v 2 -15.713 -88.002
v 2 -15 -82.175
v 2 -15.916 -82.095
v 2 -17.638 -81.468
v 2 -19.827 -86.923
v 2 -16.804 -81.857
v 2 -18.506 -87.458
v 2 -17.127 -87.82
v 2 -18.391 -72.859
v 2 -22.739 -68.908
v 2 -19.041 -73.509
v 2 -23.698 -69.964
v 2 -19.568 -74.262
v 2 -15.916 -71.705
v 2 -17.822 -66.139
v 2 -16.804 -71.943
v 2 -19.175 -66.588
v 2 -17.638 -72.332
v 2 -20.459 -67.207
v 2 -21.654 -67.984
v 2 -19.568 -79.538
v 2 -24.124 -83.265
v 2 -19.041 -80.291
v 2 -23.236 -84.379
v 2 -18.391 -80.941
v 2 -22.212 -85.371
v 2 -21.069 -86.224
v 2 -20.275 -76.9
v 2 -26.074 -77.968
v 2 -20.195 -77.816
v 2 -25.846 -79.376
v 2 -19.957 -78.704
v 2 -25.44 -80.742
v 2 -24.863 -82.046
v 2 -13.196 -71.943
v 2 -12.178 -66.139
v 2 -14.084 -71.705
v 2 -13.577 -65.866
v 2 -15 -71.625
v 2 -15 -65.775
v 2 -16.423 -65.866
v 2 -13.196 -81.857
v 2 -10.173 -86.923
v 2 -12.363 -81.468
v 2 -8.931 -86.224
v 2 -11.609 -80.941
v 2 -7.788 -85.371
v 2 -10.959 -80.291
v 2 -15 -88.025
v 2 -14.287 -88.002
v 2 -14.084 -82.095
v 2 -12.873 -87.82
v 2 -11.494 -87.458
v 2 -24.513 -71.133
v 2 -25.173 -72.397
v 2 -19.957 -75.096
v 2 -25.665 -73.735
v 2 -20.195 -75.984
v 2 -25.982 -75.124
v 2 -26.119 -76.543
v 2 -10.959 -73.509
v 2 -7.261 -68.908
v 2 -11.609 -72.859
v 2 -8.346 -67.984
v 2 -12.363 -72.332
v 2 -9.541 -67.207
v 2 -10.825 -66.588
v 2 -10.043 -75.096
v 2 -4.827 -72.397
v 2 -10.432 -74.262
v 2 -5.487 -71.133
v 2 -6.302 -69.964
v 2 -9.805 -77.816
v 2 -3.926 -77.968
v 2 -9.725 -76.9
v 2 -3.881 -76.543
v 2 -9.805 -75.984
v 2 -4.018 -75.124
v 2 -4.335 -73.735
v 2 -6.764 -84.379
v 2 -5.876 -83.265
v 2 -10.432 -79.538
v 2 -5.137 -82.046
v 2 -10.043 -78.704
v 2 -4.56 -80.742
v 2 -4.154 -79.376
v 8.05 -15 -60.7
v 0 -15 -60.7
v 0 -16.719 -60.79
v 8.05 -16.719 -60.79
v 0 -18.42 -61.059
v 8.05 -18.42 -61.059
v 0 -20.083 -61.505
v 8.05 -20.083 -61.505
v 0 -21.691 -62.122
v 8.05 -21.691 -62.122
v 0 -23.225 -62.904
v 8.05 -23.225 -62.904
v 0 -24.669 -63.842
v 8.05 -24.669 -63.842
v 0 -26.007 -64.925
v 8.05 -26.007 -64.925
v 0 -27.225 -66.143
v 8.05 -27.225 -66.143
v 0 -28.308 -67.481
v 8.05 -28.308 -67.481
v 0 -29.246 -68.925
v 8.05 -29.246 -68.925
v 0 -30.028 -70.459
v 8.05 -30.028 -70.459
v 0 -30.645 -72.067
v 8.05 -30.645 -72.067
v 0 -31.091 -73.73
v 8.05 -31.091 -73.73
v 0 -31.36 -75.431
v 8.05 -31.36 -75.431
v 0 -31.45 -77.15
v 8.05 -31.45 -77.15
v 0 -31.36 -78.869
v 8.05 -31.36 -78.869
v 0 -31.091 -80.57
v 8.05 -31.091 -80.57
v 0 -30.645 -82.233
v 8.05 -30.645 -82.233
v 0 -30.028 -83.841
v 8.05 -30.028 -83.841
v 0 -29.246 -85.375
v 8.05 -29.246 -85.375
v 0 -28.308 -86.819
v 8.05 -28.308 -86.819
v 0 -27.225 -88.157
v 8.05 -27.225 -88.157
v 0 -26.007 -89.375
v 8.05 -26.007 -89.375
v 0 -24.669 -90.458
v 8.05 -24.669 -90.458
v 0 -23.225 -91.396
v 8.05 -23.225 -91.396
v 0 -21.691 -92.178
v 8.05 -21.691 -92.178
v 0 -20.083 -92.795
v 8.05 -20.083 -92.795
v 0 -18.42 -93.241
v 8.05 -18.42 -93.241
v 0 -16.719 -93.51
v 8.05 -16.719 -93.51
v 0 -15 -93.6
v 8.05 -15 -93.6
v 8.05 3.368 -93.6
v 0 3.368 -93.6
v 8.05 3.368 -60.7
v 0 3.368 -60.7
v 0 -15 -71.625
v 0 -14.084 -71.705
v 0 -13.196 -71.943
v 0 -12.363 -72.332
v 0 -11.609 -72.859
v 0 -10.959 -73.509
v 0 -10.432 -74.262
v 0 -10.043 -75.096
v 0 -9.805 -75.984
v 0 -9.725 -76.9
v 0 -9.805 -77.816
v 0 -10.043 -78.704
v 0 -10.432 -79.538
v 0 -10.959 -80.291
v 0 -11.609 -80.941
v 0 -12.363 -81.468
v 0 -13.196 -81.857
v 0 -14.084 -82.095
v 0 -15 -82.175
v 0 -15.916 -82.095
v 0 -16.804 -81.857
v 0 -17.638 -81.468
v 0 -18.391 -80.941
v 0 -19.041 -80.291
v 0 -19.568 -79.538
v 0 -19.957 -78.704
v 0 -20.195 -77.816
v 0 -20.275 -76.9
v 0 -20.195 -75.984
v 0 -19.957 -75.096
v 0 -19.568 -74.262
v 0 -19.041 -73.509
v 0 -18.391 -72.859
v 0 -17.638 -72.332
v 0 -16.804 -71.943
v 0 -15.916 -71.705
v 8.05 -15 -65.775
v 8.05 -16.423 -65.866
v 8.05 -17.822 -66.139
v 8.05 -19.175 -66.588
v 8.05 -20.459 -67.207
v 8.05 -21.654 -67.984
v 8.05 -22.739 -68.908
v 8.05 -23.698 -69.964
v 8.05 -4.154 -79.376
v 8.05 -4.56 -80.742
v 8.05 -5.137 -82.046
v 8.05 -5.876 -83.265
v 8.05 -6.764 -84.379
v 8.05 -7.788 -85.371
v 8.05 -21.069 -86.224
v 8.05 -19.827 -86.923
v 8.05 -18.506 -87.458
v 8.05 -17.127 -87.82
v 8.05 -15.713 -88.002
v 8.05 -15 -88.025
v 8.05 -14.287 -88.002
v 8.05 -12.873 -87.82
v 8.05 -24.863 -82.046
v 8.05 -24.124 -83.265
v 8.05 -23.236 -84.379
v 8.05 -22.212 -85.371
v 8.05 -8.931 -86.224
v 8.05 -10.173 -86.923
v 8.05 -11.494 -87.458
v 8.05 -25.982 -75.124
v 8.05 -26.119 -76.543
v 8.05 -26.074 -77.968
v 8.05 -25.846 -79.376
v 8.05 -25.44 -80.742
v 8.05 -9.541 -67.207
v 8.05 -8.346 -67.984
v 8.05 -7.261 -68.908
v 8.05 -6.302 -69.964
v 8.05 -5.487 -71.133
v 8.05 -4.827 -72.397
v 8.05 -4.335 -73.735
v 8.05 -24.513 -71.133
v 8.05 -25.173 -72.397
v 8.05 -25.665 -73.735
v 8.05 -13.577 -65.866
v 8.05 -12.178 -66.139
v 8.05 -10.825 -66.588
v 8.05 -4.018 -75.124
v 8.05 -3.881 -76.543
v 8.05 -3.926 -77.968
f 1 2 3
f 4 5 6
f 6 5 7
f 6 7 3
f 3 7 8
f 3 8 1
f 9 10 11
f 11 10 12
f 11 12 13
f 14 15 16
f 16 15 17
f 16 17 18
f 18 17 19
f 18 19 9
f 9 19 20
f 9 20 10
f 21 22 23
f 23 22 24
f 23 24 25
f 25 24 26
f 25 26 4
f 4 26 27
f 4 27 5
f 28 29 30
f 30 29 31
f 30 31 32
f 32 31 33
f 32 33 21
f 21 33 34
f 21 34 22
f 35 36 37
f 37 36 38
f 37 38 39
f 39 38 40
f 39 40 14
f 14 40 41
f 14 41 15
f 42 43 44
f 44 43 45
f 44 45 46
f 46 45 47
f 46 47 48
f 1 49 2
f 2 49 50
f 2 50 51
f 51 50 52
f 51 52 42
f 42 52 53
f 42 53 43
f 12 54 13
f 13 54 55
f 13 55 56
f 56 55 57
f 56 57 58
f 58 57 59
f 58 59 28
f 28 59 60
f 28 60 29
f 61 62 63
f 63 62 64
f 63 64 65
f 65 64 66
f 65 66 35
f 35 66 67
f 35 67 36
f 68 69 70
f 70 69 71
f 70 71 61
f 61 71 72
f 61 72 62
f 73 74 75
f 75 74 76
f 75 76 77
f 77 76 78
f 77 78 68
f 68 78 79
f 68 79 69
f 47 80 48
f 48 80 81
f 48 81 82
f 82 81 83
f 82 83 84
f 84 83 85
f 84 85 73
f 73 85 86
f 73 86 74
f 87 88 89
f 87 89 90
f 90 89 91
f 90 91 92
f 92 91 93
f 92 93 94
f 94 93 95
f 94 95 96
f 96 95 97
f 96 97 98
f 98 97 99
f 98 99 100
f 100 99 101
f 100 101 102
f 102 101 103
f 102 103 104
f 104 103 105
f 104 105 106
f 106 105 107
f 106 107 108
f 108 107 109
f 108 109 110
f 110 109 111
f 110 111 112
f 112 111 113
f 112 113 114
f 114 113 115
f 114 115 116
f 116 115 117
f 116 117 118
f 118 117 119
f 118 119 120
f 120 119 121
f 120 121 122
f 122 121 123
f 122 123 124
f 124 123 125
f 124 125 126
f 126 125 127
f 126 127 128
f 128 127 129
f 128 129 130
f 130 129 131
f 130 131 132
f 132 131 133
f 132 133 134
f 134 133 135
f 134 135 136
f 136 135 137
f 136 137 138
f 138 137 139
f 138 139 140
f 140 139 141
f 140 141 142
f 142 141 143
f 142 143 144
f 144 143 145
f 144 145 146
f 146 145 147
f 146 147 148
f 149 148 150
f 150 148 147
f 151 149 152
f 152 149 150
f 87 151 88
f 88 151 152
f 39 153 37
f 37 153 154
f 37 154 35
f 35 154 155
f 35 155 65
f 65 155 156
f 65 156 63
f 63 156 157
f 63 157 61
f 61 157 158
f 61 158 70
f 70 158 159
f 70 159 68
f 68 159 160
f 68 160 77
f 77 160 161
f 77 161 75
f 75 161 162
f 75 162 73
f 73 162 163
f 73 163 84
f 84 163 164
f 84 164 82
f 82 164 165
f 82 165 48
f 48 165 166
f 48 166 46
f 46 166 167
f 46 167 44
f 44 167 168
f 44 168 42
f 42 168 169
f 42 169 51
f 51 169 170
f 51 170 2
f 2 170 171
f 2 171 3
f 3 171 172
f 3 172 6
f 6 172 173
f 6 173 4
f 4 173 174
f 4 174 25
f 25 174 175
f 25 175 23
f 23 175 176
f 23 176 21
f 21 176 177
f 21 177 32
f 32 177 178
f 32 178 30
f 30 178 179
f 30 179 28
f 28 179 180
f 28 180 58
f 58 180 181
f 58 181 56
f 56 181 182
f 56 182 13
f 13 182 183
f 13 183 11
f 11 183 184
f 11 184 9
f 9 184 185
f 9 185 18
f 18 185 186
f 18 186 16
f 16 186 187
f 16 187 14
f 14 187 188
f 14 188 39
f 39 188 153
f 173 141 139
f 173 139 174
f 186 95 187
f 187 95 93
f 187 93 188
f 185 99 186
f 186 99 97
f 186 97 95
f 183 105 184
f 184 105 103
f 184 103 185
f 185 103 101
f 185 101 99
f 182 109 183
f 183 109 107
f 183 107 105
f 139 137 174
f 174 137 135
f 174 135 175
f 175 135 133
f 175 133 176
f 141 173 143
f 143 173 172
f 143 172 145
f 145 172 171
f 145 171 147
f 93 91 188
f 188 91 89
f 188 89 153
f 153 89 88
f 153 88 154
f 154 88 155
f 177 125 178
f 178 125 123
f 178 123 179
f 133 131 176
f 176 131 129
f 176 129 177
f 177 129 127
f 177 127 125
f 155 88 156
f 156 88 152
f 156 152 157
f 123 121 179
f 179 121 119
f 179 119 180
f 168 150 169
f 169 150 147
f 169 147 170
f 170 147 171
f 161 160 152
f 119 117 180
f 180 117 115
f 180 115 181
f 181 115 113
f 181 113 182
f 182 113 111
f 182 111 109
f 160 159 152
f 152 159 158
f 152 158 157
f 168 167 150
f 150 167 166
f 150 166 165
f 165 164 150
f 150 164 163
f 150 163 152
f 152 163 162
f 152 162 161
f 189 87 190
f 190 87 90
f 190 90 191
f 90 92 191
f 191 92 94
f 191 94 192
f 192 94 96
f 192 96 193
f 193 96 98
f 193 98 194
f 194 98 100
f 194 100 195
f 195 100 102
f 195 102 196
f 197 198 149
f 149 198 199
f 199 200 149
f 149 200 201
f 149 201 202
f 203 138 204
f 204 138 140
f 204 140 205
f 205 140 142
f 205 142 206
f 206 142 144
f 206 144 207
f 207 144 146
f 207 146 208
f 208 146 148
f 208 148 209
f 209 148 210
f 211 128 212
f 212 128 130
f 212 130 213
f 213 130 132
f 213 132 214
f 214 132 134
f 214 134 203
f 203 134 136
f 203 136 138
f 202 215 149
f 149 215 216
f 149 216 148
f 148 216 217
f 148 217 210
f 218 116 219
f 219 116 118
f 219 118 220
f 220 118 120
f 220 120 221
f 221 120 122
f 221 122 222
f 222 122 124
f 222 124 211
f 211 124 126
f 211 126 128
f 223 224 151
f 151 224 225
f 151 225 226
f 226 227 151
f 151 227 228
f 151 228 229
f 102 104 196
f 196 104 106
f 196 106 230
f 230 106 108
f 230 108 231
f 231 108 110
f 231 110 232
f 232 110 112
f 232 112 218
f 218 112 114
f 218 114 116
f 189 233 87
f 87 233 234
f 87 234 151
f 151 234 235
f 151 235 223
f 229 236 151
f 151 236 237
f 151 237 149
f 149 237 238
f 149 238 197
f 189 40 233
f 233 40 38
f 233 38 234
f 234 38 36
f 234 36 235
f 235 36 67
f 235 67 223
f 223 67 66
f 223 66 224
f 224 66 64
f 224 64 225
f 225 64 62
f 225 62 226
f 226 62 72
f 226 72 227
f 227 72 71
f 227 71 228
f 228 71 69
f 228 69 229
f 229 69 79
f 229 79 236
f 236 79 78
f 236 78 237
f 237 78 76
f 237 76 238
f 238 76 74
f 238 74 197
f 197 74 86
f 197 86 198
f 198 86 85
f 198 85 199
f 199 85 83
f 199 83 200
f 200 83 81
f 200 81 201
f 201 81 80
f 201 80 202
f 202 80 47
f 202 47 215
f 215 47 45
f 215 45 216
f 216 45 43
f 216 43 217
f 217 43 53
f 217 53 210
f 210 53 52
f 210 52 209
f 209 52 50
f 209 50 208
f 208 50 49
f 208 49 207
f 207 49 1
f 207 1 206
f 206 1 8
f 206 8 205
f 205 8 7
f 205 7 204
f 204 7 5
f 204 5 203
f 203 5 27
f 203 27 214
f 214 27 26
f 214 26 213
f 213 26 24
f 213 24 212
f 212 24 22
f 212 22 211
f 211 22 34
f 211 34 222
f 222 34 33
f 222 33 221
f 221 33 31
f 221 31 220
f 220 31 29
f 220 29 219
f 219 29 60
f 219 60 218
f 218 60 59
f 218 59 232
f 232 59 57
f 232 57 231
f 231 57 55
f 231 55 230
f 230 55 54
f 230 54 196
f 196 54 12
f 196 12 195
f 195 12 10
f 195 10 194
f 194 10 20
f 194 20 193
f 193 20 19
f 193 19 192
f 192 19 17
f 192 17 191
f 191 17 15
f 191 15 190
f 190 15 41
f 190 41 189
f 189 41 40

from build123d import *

# Parameters (mm, degrees)
CROQUIS1_R              = 5.275
SALIENTE_EXTRUIR1_DEPTH = 2
CROQUIS2_R              = 11.125
SALIENTE_EXTRUIR2_DEPTH = 6.05


with BuildPart() as part:
    # Croquis1 → Saliente-Extruir1 (new body)
    with BuildSketch(Plane(origin=(0, 0, 0), x_dir=(0, 0, -1), z_dir=(1, 0, 0))):
        with BuildLine():
            Line((60.7, 3.36816026), (60.7, 0))
            Line((60.7, 0), (60.7, -15))
            ThreePointArc((60.7, -15), (77.15, -31.45), (93.6, -15))
            Line((93.6, -15), (93.6, 0))
            Line((93.6, 0), (93.6, 3.36816026))
            Line((93.6, 3.36816026), (60.7, 3.36816026))
        make_face()
        with Locations((76.9, -15)):
            Circle(CROQUIS1_R, mode=Mode.SUBTRACT)
    extrude(amount=SALIENTE_EXTRUIR1_DEPTH)

    # Croquis2 → Saliente-Extruir2 (add)
    with BuildSketch(Plane(origin=(2, 0, 0), x_dir=(0, 0, -1), z_dir=(1, 0, 0))):
        with BuildLine():
            Line((93.6, -15), (93.6, 3.36816026))
            Line((93.6, 3.36816026), (60.7, 3.36816026))
            Line((60.7, 3.36816026), (60.7, -15))
            ThreePointArc((60.7, -15), (77.15, -31.45), (93.6, -15))
        make_face()
        with Locations((76.9, -15)):
            Circle(CROQUIS2_R, mode=Mode.SUBTRACT)
    extrude(amount=SALIENTE_EXTRUIR2_DEPTH)


solid = part.part
